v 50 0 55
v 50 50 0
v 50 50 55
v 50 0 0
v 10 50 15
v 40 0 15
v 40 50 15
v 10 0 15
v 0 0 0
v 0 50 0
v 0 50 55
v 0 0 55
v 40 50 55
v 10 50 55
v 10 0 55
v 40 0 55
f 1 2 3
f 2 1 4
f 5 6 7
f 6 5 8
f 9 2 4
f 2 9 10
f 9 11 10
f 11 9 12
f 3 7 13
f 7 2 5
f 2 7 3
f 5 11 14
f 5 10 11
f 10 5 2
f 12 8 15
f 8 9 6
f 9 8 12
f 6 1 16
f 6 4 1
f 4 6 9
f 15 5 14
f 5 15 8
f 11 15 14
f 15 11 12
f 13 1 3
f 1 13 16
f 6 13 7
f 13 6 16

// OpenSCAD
// Adjusted Dimensions
base_length = 50;  // Length of the base block
base_width = 50;   // Width of the base block
base_height = 15;  // Reduced height of the base block to match the original model

cutout_length = 40;  // Increased length of the central cutout for a wider U-shape
cutout_width = 30;   // Increased width of the central cutout for a more defined U-shape
cutout_height = 15;  // Adjusted height of the central cutout to match the base block

arm_width = 10;      // Width of the side arms remains the same
arm_height = 40;     // Increased height of the side arms to match the original model

// Base block
module base_block() {
    cube([base_length, base_width, base_height]);
}

// Central cutout
module central_cutout() {
    translate([(base_length - cutout_length) / 2, (base_width - cutout_width) / 2, 0])
        cube([cutout_length, cutout_width, cutout_height]);
}

// Side arms
module side_arm() {
    cube([arm_width, base_width, arm_height]);
}

// Full model
module flexible_coupling() {
    // Layer 1: Base block
    base_block();

    // Layer 2: Central cutout
    difference() {
        base_block();
        central_cutout();
    }

    // Layer 3: Side arms
    translate([0, 0, base_height])
        side_arm();
    translate([base_length - arm_width, 0, base_height])
        side_arm();
}

// Render the model
flexible_coupling();
